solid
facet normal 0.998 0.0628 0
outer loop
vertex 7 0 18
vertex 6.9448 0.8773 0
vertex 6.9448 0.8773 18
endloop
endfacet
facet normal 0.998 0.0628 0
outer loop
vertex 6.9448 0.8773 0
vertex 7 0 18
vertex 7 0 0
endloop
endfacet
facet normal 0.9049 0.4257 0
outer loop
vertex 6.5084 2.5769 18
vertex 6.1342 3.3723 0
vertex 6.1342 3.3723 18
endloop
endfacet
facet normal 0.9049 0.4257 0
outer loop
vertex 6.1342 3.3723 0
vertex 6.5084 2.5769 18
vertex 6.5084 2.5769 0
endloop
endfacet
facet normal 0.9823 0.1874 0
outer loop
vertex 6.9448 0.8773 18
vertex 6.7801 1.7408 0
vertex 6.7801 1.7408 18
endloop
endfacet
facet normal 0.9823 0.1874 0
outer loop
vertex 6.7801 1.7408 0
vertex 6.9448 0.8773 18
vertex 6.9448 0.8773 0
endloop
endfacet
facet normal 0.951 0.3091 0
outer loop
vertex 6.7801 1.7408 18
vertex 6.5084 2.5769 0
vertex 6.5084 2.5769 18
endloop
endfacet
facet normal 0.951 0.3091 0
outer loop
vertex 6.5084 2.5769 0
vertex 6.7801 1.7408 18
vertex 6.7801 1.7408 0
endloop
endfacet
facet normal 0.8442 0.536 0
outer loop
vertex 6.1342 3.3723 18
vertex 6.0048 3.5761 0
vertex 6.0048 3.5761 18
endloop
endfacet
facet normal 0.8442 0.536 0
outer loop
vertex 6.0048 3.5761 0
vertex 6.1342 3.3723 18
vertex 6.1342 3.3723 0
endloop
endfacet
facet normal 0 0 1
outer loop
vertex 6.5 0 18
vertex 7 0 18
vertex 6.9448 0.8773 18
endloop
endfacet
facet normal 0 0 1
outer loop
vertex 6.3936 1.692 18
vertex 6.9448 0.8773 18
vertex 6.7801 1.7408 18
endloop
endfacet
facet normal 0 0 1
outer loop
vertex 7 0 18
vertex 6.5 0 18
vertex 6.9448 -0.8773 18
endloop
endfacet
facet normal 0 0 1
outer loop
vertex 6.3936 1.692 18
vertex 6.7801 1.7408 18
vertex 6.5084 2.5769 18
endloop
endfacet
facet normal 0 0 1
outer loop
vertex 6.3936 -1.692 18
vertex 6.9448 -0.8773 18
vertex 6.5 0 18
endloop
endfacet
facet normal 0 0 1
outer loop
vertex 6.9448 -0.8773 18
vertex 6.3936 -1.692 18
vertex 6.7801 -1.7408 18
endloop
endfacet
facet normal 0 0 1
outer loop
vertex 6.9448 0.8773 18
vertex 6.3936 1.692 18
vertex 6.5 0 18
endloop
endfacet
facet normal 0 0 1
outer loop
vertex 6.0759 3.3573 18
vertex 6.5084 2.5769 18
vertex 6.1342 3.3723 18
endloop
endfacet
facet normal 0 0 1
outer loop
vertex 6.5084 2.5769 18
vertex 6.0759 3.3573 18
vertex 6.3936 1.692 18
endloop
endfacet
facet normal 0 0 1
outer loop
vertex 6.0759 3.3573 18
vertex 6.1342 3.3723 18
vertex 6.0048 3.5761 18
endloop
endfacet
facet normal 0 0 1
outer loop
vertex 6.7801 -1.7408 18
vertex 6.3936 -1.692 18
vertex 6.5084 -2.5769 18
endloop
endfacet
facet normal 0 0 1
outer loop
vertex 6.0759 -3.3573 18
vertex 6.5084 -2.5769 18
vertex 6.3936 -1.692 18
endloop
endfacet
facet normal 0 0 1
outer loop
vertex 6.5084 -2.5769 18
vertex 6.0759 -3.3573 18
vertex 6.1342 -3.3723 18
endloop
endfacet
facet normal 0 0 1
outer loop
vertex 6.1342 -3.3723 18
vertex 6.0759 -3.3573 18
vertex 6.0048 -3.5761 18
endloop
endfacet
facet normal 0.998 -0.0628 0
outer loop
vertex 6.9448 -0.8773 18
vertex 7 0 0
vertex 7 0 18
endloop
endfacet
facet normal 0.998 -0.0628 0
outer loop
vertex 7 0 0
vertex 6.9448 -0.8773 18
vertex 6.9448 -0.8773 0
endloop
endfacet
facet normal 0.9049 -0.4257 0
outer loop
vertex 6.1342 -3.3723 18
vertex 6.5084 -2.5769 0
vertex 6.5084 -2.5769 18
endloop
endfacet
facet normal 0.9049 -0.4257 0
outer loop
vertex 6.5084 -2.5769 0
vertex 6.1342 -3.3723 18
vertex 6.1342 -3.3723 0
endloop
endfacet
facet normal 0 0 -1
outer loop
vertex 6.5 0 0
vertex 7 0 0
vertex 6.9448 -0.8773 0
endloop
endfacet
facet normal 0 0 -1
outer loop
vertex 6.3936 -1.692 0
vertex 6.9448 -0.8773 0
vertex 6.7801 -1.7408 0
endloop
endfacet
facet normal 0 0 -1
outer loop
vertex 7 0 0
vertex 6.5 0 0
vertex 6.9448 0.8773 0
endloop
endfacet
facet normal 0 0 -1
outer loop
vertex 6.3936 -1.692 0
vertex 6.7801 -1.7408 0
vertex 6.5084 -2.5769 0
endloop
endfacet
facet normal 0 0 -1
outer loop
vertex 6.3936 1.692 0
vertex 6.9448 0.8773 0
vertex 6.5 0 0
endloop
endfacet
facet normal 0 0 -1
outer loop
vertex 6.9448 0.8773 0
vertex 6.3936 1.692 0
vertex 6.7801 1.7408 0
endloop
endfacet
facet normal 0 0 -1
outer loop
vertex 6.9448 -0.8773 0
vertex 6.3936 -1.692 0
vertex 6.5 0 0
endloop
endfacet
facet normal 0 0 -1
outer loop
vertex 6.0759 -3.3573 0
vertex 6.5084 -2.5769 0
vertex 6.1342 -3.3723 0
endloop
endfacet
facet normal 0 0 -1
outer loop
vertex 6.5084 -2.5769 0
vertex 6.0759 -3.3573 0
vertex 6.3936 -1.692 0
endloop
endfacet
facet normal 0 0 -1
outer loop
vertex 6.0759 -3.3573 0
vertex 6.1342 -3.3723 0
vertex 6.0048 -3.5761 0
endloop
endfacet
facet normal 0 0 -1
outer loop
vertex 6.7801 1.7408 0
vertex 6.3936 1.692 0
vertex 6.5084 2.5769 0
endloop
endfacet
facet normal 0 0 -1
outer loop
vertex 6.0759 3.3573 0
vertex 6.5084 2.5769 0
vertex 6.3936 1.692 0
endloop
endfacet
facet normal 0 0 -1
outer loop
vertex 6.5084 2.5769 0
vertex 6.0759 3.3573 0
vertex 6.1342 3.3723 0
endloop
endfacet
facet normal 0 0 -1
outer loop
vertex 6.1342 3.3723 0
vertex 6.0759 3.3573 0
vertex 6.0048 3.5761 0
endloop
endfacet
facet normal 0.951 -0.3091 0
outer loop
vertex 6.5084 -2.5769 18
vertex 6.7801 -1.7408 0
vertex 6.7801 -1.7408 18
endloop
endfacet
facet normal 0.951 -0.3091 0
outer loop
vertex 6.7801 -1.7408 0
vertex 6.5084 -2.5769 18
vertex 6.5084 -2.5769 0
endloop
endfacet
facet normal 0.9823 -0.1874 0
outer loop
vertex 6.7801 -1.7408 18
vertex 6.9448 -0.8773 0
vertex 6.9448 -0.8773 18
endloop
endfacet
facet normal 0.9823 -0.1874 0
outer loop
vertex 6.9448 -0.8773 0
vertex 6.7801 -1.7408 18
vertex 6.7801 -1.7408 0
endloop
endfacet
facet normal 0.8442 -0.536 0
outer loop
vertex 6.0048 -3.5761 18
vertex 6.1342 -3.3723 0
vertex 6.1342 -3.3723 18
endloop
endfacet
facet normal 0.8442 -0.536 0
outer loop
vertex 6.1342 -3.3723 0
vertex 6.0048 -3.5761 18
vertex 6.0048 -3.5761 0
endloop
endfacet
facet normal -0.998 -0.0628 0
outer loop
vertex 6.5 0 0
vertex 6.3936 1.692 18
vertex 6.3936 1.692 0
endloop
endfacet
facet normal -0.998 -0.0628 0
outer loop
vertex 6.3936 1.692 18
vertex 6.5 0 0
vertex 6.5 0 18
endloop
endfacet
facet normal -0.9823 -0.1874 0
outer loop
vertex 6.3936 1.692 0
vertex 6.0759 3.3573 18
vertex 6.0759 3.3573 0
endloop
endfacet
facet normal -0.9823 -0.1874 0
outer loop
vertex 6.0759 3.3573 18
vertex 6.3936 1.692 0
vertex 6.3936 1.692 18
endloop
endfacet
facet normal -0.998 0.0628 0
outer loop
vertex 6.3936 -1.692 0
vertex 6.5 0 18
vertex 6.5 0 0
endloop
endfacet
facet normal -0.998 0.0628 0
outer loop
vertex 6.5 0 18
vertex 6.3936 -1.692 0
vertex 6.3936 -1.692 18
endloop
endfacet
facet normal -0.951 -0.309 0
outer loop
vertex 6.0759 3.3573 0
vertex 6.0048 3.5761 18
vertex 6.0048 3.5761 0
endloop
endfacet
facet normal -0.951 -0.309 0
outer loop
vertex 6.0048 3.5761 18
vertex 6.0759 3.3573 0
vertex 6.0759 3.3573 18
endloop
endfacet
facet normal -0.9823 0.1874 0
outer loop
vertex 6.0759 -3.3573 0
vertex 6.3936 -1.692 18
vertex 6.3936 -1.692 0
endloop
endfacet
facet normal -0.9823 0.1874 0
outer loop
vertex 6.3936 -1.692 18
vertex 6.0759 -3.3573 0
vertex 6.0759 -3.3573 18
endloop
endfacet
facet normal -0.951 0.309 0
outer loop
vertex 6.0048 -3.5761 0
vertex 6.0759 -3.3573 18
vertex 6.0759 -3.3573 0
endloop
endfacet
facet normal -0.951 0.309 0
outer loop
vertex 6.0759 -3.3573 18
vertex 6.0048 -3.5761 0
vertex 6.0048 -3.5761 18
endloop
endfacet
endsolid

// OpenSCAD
$fn = 50;


difference() {
	union() {
		cylinder(h = 18, r = 7.0000000000);
		translate(v = [-10.0000000000, 0, 0]) {
			cylinder(h = 18, r = 7.0000000000);
		}
	}
	union() {
		cylinder(h = 18, r = 3.2500000000);
		cylinder(h = 18, r = 1.8000000000);
		cylinder(h = 18, r = 1.8000000000);
		cylinder(h = 18, r = 1.8000000000);
		translate(v = [-14.5000000000, 0, 0]) {
			hull() {
				translate(v = [-3.7500000000, 0.0000000000, 0]) {
					cylinder(h = 18, r = 10.5000000000);
				}
				translate(v = [3.7500000000, 0.0000000000, 0]) {
					cylinder(h = 18, r = 10.5000000000);
				}
				translate(v = [-3.7500000000, -0.0000000000, 0]) {
					cylinder(h = 18, r = 10.5000000000);
				}
				translate(v = [3.7500000000, -0.0000000000, 0]) {
					cylinder(h = 18, r = 10.5000000000);
				}
			}
		}
		translate(v = [-7.0000000000, 0, 0.0000000000]) {
			cylinder(h = 18, r = 13.5000000000);
		}
	}
}
